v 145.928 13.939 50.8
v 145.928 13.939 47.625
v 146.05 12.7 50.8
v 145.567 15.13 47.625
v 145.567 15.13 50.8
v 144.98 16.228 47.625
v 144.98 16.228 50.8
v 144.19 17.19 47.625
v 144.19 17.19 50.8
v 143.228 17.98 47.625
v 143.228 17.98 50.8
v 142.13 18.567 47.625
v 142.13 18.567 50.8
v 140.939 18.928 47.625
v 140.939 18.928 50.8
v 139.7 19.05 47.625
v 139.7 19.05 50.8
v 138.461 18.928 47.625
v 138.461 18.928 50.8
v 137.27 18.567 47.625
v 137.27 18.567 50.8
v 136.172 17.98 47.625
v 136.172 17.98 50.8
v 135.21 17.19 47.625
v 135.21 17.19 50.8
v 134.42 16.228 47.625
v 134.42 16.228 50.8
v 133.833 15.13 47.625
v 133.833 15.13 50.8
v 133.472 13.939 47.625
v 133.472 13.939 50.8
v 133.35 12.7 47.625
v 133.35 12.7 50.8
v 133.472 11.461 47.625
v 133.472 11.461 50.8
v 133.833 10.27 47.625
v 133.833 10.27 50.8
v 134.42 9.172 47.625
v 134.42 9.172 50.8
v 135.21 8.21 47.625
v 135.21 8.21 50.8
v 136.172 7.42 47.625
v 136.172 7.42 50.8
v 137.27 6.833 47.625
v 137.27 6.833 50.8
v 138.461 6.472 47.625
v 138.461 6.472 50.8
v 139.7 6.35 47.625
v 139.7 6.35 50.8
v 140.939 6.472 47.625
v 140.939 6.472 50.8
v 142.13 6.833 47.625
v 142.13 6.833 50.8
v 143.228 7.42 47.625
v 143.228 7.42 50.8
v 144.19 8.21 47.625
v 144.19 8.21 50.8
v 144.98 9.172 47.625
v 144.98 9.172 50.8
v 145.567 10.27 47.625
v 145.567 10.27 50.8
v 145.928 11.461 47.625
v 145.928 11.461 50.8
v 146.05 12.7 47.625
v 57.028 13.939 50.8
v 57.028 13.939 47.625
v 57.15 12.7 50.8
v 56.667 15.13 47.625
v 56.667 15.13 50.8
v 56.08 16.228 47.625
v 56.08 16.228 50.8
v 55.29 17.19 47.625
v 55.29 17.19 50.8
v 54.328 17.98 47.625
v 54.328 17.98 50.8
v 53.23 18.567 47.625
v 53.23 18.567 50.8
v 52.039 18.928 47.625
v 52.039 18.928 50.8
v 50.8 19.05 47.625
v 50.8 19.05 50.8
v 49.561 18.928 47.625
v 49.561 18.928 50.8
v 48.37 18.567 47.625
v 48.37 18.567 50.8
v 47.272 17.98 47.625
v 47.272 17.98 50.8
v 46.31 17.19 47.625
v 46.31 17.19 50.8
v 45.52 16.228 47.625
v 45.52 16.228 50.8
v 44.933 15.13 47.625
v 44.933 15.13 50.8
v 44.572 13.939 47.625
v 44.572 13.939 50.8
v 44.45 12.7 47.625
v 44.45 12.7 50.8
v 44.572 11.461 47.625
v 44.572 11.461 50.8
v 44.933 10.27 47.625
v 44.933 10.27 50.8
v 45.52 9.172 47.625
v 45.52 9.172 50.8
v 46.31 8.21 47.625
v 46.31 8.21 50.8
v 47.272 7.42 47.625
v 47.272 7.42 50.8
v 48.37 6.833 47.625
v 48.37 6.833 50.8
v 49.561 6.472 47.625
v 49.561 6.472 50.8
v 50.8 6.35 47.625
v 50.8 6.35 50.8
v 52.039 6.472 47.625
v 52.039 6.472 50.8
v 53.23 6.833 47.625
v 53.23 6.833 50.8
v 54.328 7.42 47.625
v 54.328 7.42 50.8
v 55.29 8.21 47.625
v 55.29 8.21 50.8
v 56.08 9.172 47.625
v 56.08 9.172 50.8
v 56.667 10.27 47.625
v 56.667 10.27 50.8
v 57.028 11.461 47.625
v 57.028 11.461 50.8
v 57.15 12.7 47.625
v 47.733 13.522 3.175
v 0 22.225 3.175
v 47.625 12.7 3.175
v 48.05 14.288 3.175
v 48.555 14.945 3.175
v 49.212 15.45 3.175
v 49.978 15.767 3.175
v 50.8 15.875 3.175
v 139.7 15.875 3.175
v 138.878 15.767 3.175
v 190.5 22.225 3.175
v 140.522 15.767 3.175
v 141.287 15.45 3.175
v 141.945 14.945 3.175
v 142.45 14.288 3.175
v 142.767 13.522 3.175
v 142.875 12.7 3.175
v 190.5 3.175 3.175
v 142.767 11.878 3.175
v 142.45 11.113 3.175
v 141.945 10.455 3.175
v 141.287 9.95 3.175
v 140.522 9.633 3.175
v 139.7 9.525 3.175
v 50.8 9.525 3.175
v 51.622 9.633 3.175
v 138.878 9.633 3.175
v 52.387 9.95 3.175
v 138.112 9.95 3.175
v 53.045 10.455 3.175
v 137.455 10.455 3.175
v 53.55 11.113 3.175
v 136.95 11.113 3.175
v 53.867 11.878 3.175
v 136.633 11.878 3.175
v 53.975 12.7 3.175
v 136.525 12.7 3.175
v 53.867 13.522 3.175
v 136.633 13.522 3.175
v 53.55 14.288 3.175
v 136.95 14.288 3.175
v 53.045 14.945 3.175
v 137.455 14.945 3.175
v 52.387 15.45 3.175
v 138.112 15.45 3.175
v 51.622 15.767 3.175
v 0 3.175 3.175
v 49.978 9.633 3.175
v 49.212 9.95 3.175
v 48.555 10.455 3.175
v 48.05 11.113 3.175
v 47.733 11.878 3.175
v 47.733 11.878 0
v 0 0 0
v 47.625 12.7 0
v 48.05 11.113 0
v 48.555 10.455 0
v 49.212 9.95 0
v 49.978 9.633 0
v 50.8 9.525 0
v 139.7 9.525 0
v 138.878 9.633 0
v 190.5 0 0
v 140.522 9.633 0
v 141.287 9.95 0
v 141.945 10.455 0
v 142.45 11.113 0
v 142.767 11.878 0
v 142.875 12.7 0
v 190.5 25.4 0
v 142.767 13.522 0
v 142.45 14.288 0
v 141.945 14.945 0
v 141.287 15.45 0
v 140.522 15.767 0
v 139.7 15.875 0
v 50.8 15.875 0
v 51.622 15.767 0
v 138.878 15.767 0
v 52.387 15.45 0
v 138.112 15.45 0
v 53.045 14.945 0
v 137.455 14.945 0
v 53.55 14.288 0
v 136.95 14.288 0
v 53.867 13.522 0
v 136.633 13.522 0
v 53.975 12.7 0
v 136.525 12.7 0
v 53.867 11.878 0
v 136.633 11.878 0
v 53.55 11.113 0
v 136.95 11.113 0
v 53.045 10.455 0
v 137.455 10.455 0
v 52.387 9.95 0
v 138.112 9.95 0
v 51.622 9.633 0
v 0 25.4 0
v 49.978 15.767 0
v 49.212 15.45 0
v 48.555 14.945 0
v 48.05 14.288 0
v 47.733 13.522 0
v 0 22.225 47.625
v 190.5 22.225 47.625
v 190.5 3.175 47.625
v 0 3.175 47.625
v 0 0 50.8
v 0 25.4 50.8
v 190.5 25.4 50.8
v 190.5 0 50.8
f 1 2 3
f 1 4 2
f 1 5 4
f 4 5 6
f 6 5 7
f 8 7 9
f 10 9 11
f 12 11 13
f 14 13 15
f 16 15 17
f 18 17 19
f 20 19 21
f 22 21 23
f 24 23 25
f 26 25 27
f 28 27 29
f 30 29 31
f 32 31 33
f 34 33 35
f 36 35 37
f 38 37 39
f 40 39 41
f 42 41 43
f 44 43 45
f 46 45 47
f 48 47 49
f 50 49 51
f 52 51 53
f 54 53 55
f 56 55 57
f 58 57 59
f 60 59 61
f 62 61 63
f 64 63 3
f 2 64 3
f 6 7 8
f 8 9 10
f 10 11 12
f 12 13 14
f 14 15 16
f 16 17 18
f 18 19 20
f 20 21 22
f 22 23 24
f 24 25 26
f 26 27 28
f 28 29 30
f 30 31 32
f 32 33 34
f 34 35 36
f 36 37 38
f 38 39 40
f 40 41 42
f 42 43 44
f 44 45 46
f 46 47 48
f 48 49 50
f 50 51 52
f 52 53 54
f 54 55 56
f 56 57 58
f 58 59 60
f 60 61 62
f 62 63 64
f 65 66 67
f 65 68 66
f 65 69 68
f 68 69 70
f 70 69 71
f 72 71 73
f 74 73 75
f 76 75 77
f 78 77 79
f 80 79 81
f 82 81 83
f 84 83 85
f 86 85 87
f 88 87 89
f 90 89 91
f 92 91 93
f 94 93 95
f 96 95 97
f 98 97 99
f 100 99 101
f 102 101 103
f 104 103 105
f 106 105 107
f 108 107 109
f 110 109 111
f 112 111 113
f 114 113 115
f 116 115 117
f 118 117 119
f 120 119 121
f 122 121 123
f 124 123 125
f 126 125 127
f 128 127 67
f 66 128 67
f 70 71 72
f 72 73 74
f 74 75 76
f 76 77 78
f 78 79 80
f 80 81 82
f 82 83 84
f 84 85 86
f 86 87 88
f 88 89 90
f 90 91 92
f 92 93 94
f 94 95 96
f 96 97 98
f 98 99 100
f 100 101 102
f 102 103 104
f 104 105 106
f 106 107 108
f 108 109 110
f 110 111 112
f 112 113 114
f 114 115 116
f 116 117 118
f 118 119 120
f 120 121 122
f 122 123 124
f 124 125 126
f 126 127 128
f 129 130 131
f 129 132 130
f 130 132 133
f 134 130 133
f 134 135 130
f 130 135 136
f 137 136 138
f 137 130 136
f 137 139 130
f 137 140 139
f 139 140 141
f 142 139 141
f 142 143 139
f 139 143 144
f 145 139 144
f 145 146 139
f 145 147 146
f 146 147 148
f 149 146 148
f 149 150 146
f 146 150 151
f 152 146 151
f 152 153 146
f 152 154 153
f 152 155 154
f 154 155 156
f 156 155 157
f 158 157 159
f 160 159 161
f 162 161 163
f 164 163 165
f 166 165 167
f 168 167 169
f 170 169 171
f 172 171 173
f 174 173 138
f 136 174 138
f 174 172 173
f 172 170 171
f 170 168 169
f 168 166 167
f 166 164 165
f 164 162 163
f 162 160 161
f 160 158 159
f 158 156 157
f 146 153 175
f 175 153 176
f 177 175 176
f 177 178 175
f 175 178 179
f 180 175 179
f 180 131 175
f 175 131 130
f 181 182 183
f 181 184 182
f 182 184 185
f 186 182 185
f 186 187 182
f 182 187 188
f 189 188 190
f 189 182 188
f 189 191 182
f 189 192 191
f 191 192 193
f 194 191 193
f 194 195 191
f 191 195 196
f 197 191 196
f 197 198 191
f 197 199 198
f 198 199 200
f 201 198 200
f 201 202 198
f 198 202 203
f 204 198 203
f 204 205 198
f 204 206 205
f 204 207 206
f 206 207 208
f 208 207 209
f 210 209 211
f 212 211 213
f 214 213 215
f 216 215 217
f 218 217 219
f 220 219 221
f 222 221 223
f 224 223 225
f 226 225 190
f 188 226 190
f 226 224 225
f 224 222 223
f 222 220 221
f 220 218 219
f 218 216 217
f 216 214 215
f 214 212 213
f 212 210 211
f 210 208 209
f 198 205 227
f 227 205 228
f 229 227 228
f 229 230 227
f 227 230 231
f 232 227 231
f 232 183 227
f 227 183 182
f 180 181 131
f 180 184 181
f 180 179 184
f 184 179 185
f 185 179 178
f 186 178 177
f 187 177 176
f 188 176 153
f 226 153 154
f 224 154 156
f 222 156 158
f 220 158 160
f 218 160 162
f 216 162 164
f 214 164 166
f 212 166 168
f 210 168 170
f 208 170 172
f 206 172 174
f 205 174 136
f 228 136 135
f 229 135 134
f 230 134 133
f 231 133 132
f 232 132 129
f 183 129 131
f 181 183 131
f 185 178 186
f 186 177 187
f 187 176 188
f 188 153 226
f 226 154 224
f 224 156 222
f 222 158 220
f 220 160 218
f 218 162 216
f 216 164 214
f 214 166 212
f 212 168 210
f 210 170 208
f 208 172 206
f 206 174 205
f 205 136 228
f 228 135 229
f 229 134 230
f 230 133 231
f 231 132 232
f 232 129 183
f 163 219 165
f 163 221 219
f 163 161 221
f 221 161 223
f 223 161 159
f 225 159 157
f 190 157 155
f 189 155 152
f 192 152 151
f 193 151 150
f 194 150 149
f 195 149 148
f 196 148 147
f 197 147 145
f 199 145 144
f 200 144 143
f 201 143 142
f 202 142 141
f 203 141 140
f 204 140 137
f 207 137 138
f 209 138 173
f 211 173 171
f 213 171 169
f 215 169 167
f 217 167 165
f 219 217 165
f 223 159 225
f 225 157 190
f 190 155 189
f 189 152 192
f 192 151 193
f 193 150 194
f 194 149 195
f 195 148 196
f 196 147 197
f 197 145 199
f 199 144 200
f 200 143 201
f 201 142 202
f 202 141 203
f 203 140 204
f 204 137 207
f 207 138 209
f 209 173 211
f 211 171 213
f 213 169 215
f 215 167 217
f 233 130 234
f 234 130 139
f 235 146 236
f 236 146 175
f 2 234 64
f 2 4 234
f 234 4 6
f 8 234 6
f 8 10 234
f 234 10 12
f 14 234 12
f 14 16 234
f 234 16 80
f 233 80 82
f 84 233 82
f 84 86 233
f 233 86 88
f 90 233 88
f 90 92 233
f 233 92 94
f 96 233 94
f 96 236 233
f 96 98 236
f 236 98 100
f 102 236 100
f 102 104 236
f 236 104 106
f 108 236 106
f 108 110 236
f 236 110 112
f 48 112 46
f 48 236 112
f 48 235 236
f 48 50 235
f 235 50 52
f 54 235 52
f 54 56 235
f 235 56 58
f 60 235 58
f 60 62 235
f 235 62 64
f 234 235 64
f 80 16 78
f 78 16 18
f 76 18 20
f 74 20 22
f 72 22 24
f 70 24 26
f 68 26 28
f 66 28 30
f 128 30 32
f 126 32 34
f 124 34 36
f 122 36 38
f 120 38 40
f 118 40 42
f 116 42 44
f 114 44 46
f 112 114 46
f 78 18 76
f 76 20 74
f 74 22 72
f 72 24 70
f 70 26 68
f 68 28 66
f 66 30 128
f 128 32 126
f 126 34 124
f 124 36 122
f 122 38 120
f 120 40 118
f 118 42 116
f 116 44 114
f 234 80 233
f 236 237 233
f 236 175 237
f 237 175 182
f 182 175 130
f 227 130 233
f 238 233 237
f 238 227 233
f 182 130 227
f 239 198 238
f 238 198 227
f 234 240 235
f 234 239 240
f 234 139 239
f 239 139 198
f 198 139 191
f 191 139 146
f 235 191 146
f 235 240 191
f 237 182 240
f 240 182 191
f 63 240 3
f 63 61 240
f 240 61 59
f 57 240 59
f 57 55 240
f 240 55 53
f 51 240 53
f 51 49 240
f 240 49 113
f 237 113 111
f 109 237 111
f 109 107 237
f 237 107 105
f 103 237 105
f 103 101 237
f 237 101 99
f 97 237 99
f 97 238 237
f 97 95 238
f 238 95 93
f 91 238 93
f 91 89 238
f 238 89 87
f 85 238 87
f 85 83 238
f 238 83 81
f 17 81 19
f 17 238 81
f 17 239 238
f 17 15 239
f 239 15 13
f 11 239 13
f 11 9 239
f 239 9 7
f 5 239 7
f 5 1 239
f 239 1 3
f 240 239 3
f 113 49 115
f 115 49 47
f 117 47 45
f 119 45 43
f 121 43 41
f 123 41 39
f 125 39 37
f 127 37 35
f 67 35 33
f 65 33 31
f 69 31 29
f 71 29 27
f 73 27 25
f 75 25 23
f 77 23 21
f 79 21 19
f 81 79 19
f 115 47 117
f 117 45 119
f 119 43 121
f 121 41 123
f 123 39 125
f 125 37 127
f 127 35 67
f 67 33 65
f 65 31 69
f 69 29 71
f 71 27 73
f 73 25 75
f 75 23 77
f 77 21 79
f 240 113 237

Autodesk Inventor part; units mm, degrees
ref_plane "YZ Plane" through (0, 0, 0) normal (1, 0, 0) x (0, 1, 0)
ref_plane "XZ Plane" through (0, 0, 0) normal (0, 1, 0) x (-1, 0, 0)
ref_plane "XY Plane" through (0, 0, 0) normal (0, 0, 1) x (1, 0, 0)
sketch "Sketch1" plane through (0, 0, 0) normal (0, 0, 1) x (1, 0, 0)
  line L0 (0, 0) -> (190.5, 0)
  line L1 (190.5, 0) -> (190.5, 25.4)
  line L2 (190.5, 25.4) -> (0, 25.4)
  line L3 (0, 25.4) -> (0, 0)
  dimension "d0" = 190.5
  dimension "d1" = 25.4
extrude "Extrusion1" add sketch "Sketch1" along normal blind 50.8
shell "Shell1" thickness 3.175 removed faces 2 at (0, 16.9333, 33.8667) at (190.5, 8.4667, 16.9333)
sketch "Sketch4" plane through (0, 0, 0) normal (0, 0, -1) x (-1, 0, 0)
  line L0 (0, 25.4) -> (0, 0) projected
  line L1 (-190.5, 25.4) -> (0, 25.4) projected
  line L2 (-190.5, 0) -> (-190.5, 25.4) projected
  circle A0 centre (-139.7, 12.7) radius 3.175
  circle A1 centre (-50.8, 12.7) radius 3.175
  dimension "d5" = 50.8
  dimension "d6" = 50.8
  dimension "d7" = 12.7
  dimension "d8" = 12.7
  dimension "d9" = 6.35
extrude "Extrusion2" cut sketch "Sketch4" against normal through all
sketch "Sketch5" plane through (0, 0, 50.8) normal (0, 0, 1) x (1, 0, 0)
  circle A0 centre (50.8, 12.7) radius 3.175 projected
  circle A1 centre (139.7, 12.7) radius 3.175 projected
  circle A2 centre (50.8, 12.7) radius 6.35
  circle A3 centre (139.7, 12.7) radius 6.35
  dimension "d12" = 12.7
  dimension "d13" = 12.7
extrude "Extrusion3" cut sketch "Sketch5" against normal up to next
properties part number "SpatulaPivotMount" material "Aluminum-6061"
